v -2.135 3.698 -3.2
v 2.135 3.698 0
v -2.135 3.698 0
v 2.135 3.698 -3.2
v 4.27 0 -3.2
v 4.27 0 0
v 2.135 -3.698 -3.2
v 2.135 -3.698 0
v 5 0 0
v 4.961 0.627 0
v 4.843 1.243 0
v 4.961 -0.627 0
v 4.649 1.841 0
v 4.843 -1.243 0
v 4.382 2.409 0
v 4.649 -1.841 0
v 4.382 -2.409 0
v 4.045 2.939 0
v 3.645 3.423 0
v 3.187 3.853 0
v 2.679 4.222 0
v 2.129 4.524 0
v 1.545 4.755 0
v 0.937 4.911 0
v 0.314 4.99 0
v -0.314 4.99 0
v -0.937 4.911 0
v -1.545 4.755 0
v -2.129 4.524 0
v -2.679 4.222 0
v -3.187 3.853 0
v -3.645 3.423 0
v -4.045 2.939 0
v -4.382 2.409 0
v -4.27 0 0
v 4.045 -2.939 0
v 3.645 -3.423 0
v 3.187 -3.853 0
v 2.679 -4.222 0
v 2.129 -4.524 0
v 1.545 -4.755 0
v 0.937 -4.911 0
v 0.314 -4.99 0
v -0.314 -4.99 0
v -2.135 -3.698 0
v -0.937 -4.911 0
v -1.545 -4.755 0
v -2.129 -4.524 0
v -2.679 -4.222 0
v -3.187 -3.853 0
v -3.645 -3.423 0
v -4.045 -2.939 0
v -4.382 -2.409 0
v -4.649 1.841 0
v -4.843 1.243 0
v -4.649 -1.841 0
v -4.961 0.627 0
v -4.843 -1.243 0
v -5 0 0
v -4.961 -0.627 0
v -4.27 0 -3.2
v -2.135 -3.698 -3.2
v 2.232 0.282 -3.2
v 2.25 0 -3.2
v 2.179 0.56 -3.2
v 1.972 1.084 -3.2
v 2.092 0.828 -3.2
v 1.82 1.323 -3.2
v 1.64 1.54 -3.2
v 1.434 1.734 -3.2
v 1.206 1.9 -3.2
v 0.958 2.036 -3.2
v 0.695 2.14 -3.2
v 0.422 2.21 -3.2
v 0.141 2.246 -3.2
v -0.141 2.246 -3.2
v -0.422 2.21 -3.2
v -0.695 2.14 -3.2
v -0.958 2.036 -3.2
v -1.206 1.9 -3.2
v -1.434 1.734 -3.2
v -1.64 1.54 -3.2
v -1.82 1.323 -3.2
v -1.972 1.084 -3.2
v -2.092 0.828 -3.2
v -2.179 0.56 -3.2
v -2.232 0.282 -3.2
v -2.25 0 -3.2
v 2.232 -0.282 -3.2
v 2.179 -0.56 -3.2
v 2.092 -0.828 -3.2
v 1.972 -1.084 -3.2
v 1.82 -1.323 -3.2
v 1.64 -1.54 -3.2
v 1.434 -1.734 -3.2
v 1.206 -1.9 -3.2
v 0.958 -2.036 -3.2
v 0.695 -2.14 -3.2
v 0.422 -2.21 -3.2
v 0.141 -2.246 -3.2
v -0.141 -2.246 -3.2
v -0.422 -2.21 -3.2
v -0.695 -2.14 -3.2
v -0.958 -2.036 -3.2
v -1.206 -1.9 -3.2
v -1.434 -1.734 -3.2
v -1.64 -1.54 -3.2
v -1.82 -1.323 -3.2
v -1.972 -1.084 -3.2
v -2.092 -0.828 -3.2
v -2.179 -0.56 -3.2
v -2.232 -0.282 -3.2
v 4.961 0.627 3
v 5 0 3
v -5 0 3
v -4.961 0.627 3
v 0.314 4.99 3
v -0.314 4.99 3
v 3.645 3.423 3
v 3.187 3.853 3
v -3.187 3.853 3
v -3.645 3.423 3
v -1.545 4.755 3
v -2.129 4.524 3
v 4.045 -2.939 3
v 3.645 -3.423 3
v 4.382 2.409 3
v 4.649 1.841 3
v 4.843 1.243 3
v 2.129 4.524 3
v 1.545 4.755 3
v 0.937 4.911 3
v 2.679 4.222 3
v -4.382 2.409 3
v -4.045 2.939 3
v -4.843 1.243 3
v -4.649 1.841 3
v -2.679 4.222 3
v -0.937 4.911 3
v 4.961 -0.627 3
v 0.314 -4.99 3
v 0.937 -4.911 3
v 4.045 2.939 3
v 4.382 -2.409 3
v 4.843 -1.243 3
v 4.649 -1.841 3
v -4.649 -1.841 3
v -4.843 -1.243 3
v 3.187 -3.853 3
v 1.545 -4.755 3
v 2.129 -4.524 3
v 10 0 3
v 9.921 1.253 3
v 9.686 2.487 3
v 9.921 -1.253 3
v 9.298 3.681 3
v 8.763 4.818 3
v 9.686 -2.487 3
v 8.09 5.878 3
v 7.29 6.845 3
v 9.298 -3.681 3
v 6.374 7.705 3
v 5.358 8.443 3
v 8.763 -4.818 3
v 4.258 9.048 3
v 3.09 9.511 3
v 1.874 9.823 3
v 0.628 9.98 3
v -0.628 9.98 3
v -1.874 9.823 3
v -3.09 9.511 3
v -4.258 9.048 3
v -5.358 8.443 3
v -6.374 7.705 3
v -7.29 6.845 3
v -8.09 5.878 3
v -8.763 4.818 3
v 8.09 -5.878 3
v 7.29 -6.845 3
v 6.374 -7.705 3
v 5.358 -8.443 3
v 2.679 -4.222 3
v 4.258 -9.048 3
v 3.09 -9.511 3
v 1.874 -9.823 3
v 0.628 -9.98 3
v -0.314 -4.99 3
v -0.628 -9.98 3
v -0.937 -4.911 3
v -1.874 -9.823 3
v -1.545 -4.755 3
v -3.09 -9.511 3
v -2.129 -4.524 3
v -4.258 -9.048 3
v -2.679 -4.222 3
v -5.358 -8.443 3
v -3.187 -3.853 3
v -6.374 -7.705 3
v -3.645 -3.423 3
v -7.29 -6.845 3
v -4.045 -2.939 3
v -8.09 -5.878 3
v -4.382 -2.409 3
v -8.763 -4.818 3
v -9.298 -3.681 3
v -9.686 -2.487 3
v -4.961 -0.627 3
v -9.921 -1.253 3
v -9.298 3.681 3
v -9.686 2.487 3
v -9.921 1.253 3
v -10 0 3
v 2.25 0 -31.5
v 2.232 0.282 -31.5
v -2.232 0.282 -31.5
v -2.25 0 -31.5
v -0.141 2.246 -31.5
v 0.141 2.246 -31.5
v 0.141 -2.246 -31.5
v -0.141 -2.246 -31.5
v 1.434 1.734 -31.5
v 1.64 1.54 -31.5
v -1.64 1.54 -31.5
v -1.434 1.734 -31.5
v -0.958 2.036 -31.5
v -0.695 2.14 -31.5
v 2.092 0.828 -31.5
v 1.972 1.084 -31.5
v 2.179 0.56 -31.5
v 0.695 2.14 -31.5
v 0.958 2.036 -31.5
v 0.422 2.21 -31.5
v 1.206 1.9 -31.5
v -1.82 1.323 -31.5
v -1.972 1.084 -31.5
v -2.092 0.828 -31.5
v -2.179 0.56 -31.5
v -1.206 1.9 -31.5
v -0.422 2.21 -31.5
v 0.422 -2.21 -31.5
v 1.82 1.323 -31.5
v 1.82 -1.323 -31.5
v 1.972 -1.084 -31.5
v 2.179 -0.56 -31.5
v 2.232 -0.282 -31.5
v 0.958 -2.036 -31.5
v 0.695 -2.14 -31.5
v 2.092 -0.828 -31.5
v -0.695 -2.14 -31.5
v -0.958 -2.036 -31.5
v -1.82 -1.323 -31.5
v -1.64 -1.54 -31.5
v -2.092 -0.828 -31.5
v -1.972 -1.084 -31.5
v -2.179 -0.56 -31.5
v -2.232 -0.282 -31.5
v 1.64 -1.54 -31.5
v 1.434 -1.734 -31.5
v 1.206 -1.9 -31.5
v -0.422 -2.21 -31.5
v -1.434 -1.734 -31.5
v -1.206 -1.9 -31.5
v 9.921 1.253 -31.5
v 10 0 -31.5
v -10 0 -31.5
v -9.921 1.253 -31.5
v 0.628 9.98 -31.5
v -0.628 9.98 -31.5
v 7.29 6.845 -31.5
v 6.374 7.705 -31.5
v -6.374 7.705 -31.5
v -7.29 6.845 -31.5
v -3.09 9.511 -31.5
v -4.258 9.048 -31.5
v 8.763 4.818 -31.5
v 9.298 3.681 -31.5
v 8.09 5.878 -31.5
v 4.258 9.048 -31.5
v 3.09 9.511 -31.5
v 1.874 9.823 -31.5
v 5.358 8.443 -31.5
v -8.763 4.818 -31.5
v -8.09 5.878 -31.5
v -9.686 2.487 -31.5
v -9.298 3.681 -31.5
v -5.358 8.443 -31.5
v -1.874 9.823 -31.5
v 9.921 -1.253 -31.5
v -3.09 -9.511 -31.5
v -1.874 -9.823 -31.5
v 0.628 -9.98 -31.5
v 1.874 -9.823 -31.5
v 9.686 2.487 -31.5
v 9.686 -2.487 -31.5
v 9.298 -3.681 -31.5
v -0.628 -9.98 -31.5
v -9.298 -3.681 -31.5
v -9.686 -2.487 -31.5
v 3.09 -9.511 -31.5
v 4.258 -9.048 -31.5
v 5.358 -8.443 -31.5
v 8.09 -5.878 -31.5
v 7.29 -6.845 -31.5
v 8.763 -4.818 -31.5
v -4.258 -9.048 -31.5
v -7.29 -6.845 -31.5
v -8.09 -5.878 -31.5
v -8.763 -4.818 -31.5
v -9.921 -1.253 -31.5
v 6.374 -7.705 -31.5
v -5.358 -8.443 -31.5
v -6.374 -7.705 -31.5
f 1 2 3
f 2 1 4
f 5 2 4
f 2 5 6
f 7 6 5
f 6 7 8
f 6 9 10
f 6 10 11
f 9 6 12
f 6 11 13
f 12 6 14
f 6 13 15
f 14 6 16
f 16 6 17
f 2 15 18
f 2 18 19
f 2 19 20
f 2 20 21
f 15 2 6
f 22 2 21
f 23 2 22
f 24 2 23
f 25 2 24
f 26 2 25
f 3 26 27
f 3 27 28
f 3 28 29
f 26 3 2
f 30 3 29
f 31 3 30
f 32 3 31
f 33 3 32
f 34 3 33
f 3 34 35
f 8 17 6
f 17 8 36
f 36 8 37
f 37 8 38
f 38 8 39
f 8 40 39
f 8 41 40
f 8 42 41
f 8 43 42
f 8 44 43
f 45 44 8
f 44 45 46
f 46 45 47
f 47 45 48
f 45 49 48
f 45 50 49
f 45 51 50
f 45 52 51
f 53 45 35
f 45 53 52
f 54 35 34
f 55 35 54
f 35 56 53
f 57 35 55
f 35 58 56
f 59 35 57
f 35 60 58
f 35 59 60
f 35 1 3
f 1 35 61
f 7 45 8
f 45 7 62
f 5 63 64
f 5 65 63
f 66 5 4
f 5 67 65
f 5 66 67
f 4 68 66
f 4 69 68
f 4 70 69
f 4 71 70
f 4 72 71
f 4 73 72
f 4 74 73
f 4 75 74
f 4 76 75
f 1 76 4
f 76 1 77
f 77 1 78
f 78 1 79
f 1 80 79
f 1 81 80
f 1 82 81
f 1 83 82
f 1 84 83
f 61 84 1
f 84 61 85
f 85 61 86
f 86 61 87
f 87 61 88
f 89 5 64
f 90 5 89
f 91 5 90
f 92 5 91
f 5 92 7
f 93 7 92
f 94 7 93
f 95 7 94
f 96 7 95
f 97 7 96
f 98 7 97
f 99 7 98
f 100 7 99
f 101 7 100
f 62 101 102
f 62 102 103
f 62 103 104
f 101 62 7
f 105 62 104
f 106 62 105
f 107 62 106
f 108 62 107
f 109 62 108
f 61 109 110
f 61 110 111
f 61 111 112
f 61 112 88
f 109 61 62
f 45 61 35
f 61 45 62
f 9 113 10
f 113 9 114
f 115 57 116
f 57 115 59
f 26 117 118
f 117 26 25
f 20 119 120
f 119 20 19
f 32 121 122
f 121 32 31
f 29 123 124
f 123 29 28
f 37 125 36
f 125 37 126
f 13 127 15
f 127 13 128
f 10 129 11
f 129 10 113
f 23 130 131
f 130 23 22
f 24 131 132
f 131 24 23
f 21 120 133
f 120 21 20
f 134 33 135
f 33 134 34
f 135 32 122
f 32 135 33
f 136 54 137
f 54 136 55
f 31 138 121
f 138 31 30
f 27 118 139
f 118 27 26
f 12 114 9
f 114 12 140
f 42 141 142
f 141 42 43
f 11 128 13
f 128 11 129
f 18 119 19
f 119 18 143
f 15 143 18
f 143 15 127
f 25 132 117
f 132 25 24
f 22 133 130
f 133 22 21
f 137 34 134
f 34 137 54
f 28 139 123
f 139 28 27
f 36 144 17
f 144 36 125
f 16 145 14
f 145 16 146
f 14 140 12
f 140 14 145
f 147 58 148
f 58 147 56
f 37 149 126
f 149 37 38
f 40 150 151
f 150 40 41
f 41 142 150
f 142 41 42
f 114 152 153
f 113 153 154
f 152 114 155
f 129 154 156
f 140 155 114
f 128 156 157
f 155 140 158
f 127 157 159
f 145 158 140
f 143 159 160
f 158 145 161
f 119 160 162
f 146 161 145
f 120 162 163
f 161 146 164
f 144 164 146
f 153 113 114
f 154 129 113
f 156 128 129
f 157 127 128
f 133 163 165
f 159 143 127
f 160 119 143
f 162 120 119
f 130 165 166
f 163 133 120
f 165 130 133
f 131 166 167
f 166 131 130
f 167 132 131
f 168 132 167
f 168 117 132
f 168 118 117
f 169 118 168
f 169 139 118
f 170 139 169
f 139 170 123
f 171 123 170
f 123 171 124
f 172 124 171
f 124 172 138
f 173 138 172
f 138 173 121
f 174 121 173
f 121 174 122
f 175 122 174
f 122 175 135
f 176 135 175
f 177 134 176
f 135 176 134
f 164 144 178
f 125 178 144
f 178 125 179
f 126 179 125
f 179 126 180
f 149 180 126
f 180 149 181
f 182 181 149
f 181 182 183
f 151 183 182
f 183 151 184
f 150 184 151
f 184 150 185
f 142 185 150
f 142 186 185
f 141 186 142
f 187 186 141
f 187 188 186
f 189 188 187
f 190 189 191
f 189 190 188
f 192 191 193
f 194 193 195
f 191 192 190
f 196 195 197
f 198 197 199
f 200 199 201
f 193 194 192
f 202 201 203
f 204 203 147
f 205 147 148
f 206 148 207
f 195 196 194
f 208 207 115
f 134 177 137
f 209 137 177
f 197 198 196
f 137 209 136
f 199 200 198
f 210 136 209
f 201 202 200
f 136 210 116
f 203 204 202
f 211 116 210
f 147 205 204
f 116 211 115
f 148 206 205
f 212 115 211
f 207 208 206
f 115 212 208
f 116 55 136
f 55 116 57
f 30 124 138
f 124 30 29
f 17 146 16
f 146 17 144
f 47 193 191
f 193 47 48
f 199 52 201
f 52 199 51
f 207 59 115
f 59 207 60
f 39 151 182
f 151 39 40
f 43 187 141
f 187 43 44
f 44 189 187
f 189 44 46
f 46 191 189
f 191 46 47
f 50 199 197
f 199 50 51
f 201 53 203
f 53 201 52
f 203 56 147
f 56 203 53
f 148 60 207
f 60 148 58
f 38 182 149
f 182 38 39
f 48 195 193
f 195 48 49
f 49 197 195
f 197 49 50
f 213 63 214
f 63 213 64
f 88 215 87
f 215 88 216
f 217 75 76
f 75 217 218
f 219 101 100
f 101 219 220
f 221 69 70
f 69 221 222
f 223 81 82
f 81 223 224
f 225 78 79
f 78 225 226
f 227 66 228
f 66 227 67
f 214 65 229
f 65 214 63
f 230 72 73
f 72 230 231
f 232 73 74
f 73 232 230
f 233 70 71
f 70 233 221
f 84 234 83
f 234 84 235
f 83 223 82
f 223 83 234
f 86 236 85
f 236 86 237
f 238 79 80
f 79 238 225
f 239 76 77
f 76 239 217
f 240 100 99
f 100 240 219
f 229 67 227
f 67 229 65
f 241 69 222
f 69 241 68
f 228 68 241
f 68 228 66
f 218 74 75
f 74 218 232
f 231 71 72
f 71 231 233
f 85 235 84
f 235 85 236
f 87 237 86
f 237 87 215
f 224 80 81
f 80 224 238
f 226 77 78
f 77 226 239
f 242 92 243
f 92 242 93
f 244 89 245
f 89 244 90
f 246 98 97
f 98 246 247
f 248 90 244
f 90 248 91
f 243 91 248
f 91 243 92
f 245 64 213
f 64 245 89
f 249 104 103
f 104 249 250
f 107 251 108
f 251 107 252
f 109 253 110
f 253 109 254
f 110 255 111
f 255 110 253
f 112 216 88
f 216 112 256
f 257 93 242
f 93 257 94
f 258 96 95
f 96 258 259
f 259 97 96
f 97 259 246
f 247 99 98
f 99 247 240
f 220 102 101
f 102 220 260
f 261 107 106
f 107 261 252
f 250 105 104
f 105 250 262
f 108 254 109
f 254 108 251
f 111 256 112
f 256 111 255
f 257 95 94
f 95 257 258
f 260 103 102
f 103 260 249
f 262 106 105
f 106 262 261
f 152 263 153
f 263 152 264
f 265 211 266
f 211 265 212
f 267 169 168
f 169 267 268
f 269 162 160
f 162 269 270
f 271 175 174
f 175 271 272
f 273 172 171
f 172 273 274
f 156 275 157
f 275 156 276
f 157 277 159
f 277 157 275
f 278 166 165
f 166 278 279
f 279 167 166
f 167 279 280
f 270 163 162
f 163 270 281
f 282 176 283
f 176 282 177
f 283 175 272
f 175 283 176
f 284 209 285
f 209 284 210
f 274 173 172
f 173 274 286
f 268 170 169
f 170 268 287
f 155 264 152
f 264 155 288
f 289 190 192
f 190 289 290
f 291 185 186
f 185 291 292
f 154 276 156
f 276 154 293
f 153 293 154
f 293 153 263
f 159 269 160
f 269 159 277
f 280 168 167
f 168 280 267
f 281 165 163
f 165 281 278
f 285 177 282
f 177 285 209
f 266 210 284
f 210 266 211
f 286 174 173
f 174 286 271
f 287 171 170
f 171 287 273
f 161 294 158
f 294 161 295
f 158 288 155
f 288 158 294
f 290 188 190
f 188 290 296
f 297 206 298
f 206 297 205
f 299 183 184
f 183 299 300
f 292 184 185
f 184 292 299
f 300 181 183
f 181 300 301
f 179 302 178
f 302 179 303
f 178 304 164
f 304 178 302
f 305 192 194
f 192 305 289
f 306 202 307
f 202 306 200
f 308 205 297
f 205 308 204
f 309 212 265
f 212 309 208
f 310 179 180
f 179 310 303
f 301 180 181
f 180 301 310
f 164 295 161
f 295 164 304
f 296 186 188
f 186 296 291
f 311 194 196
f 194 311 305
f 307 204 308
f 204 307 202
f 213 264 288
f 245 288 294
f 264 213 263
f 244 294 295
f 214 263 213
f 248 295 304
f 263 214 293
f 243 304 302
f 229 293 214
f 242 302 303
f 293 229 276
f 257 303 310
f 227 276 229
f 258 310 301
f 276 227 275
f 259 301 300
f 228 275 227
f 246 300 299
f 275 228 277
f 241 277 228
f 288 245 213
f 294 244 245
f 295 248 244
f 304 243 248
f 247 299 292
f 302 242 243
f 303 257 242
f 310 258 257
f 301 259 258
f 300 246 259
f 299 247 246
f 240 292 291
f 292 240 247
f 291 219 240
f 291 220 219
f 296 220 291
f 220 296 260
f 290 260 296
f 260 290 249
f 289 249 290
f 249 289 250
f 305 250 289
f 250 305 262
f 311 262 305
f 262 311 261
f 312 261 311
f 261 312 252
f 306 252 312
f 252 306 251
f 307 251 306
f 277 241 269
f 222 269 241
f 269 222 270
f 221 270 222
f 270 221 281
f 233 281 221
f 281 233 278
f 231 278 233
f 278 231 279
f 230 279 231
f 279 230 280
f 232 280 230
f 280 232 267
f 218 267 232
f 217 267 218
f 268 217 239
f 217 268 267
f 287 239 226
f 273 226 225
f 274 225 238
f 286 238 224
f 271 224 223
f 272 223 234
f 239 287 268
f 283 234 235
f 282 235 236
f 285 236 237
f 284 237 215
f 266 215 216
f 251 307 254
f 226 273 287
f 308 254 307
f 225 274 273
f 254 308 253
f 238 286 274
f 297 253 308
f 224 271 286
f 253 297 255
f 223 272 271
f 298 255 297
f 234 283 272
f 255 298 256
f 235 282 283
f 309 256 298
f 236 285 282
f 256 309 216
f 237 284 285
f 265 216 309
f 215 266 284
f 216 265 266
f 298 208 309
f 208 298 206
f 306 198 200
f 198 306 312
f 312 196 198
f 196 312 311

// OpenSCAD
$fn = 50;


difference() {
	union() {
		translate(v = [0, 0, -31.5000000000]) {
			cylinder(h = 34.5000000000, r = 10.0000000000);
		}
	}
	union() {
		translate(v = [0, 0, 0]) {
			rotate(a = [0, 0, 0]) {
				difference() {
					union() {
						translate(v = [0, 0, -3.2000000000]) {
							linear_extrude(height = 3.2000000000) {
								polygon(points = [[4.2698000000, 0.0000000000], [2.1349000000, 3.6977552691], [-2.1349000000, 3.6977552691], [-4.2698000000, 0.0000000000], [-2.1349000000, -3.6977552691], [2.1349000000, -3.6977552691]]);
							}
						}
					}
					union();
				}
			}
		}
		#cylinder(h = 3, r = 5.0000000000);
		#translate(v = [0, 0, -100.0000000000]) {
			cylinder(h = 200, r = 2.2500000000);
		}
	}
}
